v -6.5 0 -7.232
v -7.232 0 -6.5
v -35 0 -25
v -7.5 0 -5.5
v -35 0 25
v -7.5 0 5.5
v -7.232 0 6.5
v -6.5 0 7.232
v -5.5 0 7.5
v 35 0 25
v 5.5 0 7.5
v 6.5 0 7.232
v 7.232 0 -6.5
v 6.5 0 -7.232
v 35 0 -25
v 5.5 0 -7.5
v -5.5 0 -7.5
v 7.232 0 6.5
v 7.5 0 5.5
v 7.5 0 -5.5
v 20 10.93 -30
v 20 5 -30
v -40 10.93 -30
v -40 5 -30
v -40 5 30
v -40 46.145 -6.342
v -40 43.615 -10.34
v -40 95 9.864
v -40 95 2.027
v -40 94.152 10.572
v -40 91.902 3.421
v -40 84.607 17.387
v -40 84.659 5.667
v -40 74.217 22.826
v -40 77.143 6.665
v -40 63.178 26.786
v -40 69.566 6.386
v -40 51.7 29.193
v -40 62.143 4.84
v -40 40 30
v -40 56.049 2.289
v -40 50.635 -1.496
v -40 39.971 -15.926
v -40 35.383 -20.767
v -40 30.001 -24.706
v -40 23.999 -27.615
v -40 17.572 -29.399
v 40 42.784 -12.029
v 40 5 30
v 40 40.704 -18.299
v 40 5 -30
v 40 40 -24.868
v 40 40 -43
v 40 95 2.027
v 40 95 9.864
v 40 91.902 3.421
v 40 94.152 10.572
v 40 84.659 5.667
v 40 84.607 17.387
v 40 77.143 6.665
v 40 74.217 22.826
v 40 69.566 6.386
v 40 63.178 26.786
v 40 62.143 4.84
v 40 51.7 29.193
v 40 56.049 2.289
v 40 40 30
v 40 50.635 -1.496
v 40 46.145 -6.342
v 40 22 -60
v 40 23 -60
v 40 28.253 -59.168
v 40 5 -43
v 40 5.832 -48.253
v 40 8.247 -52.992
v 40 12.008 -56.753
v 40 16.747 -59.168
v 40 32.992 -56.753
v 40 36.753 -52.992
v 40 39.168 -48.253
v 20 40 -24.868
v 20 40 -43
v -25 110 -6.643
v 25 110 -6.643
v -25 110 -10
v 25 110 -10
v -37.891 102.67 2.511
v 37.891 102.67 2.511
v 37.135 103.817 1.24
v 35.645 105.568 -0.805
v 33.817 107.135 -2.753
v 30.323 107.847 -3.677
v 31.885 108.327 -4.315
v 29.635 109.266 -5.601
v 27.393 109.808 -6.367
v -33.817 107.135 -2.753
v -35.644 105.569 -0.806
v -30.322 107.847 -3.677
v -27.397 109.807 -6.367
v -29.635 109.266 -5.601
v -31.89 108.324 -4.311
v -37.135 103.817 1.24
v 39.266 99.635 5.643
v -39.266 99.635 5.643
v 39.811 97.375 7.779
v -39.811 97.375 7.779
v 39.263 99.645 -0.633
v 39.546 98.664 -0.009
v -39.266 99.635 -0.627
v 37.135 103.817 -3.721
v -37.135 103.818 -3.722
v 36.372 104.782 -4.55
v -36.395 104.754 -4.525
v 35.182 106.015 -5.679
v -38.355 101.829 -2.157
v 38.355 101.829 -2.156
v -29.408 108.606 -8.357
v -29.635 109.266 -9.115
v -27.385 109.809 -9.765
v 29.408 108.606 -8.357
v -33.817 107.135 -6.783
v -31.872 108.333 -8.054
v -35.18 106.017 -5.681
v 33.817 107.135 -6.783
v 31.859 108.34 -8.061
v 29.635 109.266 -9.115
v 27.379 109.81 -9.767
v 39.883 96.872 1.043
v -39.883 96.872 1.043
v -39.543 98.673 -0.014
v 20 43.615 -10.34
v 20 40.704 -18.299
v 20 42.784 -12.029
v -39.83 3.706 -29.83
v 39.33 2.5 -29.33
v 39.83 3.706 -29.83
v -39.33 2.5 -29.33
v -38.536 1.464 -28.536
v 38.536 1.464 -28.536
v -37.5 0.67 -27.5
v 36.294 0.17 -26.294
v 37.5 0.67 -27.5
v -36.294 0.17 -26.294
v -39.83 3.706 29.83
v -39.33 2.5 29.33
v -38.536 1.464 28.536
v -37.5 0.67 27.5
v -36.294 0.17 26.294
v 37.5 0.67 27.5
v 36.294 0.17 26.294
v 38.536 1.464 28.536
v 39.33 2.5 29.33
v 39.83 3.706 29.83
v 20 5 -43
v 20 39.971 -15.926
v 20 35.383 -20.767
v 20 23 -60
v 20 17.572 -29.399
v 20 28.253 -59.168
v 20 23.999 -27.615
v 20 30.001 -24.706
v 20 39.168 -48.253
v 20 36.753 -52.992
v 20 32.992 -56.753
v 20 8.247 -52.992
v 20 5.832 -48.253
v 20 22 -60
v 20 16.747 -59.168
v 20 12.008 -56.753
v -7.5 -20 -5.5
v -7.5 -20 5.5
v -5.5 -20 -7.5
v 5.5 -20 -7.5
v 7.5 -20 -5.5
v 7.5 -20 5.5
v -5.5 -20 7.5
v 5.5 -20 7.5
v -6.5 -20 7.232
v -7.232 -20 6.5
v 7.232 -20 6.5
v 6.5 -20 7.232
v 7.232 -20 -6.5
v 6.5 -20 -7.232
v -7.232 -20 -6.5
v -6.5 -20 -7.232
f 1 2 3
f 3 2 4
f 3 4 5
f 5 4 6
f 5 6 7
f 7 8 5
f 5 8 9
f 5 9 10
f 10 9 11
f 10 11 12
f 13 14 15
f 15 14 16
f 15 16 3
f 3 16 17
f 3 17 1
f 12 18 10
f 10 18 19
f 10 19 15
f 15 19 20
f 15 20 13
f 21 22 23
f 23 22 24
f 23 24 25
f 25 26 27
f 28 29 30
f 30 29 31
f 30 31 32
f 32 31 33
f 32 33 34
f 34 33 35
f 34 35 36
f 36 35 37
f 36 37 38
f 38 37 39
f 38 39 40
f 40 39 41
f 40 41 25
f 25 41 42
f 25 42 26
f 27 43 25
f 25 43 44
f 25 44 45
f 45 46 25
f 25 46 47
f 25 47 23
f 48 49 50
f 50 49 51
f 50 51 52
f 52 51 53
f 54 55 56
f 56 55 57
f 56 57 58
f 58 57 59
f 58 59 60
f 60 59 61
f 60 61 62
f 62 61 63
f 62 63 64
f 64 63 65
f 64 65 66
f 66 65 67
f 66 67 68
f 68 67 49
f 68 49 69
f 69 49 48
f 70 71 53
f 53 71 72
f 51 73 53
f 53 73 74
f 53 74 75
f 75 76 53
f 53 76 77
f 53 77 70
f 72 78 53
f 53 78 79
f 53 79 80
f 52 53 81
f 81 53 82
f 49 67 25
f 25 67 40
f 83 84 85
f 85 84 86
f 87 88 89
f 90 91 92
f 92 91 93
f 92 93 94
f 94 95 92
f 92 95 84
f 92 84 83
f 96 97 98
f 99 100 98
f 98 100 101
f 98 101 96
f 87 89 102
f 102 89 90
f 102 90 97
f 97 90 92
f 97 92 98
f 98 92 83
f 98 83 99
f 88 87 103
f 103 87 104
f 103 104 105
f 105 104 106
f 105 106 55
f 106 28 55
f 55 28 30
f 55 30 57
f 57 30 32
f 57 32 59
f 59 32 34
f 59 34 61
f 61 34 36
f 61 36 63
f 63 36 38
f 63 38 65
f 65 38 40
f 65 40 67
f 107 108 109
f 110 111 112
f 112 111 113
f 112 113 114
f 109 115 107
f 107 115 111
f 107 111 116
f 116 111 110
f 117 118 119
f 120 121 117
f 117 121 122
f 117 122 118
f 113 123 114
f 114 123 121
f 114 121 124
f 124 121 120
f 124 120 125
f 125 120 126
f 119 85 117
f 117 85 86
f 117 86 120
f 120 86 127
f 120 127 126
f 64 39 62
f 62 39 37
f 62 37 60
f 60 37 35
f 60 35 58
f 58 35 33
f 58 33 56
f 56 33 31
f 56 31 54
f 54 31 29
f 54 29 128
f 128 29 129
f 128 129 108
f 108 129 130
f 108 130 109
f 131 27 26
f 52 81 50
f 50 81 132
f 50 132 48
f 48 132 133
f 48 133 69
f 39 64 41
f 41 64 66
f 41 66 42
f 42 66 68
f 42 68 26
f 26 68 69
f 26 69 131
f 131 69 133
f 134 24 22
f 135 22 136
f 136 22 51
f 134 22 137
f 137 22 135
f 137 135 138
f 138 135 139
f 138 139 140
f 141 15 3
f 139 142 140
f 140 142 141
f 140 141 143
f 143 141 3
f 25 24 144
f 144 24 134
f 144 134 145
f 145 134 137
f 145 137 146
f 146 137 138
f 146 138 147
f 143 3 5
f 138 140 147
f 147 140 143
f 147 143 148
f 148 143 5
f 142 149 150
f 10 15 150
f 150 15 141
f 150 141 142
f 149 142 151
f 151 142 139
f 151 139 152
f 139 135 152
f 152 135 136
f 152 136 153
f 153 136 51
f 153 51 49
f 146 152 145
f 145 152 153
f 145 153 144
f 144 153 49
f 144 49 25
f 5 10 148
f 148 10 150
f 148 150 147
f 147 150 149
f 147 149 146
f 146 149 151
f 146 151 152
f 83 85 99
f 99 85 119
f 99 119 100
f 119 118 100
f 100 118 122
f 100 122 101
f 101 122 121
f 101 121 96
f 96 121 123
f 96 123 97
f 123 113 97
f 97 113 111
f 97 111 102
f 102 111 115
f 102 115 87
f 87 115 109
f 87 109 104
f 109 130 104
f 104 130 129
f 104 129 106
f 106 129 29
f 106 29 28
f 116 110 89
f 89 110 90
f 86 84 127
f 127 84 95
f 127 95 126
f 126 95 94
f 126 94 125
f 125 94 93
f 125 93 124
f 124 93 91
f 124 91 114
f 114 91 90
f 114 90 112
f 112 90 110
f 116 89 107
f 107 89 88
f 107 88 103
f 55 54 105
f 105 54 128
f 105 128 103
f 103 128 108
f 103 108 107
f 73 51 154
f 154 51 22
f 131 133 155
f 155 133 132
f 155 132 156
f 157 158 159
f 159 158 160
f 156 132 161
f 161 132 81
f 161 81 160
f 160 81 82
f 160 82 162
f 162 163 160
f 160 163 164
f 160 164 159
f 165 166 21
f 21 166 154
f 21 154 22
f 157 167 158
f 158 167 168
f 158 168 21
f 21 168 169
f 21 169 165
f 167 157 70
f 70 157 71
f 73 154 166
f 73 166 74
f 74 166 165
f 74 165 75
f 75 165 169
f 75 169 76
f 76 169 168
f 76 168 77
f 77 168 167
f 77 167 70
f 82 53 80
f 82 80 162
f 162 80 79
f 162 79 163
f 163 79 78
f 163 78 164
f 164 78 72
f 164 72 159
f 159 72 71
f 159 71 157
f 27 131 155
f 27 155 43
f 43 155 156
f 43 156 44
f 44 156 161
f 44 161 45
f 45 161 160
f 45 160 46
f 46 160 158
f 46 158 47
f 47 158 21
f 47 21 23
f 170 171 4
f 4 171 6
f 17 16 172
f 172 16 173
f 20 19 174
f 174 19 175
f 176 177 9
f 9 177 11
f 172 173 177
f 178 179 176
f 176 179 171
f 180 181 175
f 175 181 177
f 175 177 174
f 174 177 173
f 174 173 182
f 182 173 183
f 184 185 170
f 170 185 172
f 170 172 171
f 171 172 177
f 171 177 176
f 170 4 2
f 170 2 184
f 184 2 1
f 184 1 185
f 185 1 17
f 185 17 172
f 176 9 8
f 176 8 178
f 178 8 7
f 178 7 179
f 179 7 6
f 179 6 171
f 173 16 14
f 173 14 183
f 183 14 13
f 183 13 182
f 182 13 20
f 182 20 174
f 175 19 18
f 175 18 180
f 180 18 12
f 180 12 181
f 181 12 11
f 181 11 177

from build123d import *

# Parameters (mm, degrees)
SKETCH1_W           = 80
SKETCH1_H           = 60
BOSS_EXTRUDE1_DEPTH = 40
SKETCH2_W           = 80
SKETCH2_H           = 40
BOSS_EXTRUDE2_DEPTH = 70
CUT_EXTRUDE1_REACH  = 141.284
FILLET4_R           = 31
FILLET6_R           = 5
FILLET7_R           = 15
SKETCH5_W           = 20
SKETCH5_H           = 35
BOSS_EXTRUDE4_DEPTH = 30
FILLET8_R           = 17
FILLET9_R           = 37
SKETCH6_W           = 15
SKETCH6_H           = 15
BOSS_EXTRUDE5_DEPTH = 20
FILLET10_R          = 2


with BuildPart() as part:
    # Sketch1 → Boss-Extrude1 (new body)
    with BuildSketch(Plane(origin=(0, 0, 0), x_dir=(1, 0, 0), z_dir=(0, 1, 0))):
        Rectangle(SKETCH1_W, SKETCH1_H)
    extrude(amount=BOSS_EXTRUDE1_DEPTH)

    # Sketch2 → Boss-Extrude2 (add)
    with BuildSketch(Plane(origin=(0, 40, 0), x_dir=(1, 0, 0), z_dir=(0, 1, 0))):
        with Locations((0, -10)):
            Rectangle(SKETCH2_W, SKETCH2_H)
    extrude(amount=BOSS_EXTRUDE2_DEPTH)

    # Sketch3 → Cut-Extrude1 (cut, up to next)
    with BuildSketch(Plane(origin=(40, 0, 0), x_dir=(0, 0, -1), z_dir=(1, 0, 0)), mode=Mode.PRIVATE) as cut_extrude1_sk1:
        with BuildLine():
            ThreePointArc((10, 110), (-6.715728753, 75), (10, 40))
            Line((10, 40), (10, 110))
        make_face()
    cut_extrude1_tool1 = extrude(cut_extrude1_sk1.sketch, amount=-CUT_EXTRUDE1_REACH, mode=Mode.PRIVATE) & part.part
    # Sketch3 → Cut-Extrude1 (cut, up to next)
    with BuildSketch(Plane(origin=(40, 0, 0), x_dir=(0, 0, -1), z_dir=(1, 0, 0)), mode=Mode.PRIVATE) as cut_extrude1_sk2:
        with BuildLine():
            ThreePointArc((-30, 40), (-20.28517386, 79.505502482), (6.643401936, 110))
            Line((6.643401936, 110), (-30, 110))
            Line((-30, 110), (-30, 40))
        make_face()
    cut_extrude1_tool2 = extrude(cut_extrude1_sk2.sketch, amount=-CUT_EXTRUDE1_REACH, mode=Mode.PRIVATE) & part.part
    add(cut_extrude1_tool1.solids().sort_by_distance((40, 75, -3.194337))[0], mode=Mode.SUBTRACT)
    add(cut_extrude1_tool2.solids().sort_by_distance((40, 93.341036, 19.578223))[0], mode=Mode.SUBTRACT)

    # Fillet4
    fillet4_edges = [part.edges().sort_by_distance(p)[0] for p in [
        (0, 40, -10),
    ]]
    fillet(fillet4_edges, radius=FILLET4_R)

    # Fillet6
    fillet6_edges = [part.edges().sort_by_distance(p)[0] for p in [
        (0, 0, -30),
        (40, 0, 0),
        (0, 0, 30),
        (-40, 0, 0),
    ]]
    fillet(fillet6_edges, radius=FILLET6_R)

    # Fillet7
    # the kernel refuses this fillet: 15 mm, written as the material it takes off along each edge
    with BuildSketch(Plane(origin=(-40, 110, -47.5), x_dir=(1, 0, 0), z_dir=(0, 0, 1))) as fillet7_piece_1:
        with BuildLine():
            CenterArc((FILLET7_R, -FILLET7_R), FILLET7_R, 90, 90)
            Line((0, -FILLET7_R), (0, 0))
            Line((0, 0), (FILLET7_R, 0))
        make_face()
    extrude(amount=78.356598064, mode=Mode.SUBTRACT)
    with BuildSketch(Plane(origin=(40, 110, 30.856598064), x_dir=(0, -1, 0), z_dir=(0, 0, -1))) as fillet7_piece_2:
        with BuildLine():
            CenterArc((FILLET7_R, FILLET7_R), FILLET7_R, 180, 90)
            Line((0, FILLET7_R), (0, 0))
            Line((0, 0), (FILLET7_R, 0))
        make_face()
    extrude(amount=78.356598064, mode=Mode.SUBTRACT)

    # Sketch5 → Boss-Extrude4 (add)
    with BuildSketch(Plane(origin=(0, 0, -30), x_dir=(-1, 0, 0), z_dir=(0, 0, -1))):
        with Locations((-30, 22.5)):
            Rectangle(SKETCH5_W, SKETCH5_H)
    extrude(amount=BOSS_EXTRUDE4_DEPTH)

    # Fillet8
    fillet8_edges = [part.edges().sort_by_distance(p)[0] for p in [
        (30, 5, -60),
        (30, 40, -60),
    ]]
    fillet(fillet8_edges, radius=FILLET8_R)

    # Fillet9
    # the kernel refuses this fillet: 37 mm, written as the material it takes off along each edge
    with BuildSketch(Plane(origin=(20, 40, -30), x_dir=(0, 0.18084372085202682, 0.9835118446812903), z_dir=(-1, 0, 0))) as fillet9_piece_1:
        with BuildLine():
            CenterArc((31.132759532, -35.282188472), FILLET9_R, 107.527471669, 62.053620325)
            Line((-5.257178722, -28.5909708), (-8.896172547, -27.921849033))
            Line((-8.896172547, -27.921849033), (-3.638993825, 0.669121767))
            Line((-3.638993825, 0.669121767), (0.669121767, 3.638993825))
            ThreePointArc((0.669121767, 3.638993825), (5.716638919, 2.710879143), (18.875423616, 3.528218847))
            Line((18.875423616, 3.528218847), (19.989726881, 0))
        make_face()
    extrude(amount=132.675715485, mode=Mode.SUBTRACT)

    # Sketch6 → Boss-Extrude5 (add)
    with BuildSketch(Plane.XZ):
        Rectangle(SKETCH6_W, SKETCH6_H)
    extrude(amount=BOSS_EXTRUDE5_DEPTH)

    # Fillet10
    fillet10_edges = [part.edges().sort_by_distance(p)[0] for p in [
        (-7.5, -10, 7.5),
        (-7.5, -10, -7.5),
        (7.5, -10, -7.5),
        (7.5, -10, 7.5),
    ]]
    fillet(fillet10_edges, radius=FILLET10_R)


solid = part.part
